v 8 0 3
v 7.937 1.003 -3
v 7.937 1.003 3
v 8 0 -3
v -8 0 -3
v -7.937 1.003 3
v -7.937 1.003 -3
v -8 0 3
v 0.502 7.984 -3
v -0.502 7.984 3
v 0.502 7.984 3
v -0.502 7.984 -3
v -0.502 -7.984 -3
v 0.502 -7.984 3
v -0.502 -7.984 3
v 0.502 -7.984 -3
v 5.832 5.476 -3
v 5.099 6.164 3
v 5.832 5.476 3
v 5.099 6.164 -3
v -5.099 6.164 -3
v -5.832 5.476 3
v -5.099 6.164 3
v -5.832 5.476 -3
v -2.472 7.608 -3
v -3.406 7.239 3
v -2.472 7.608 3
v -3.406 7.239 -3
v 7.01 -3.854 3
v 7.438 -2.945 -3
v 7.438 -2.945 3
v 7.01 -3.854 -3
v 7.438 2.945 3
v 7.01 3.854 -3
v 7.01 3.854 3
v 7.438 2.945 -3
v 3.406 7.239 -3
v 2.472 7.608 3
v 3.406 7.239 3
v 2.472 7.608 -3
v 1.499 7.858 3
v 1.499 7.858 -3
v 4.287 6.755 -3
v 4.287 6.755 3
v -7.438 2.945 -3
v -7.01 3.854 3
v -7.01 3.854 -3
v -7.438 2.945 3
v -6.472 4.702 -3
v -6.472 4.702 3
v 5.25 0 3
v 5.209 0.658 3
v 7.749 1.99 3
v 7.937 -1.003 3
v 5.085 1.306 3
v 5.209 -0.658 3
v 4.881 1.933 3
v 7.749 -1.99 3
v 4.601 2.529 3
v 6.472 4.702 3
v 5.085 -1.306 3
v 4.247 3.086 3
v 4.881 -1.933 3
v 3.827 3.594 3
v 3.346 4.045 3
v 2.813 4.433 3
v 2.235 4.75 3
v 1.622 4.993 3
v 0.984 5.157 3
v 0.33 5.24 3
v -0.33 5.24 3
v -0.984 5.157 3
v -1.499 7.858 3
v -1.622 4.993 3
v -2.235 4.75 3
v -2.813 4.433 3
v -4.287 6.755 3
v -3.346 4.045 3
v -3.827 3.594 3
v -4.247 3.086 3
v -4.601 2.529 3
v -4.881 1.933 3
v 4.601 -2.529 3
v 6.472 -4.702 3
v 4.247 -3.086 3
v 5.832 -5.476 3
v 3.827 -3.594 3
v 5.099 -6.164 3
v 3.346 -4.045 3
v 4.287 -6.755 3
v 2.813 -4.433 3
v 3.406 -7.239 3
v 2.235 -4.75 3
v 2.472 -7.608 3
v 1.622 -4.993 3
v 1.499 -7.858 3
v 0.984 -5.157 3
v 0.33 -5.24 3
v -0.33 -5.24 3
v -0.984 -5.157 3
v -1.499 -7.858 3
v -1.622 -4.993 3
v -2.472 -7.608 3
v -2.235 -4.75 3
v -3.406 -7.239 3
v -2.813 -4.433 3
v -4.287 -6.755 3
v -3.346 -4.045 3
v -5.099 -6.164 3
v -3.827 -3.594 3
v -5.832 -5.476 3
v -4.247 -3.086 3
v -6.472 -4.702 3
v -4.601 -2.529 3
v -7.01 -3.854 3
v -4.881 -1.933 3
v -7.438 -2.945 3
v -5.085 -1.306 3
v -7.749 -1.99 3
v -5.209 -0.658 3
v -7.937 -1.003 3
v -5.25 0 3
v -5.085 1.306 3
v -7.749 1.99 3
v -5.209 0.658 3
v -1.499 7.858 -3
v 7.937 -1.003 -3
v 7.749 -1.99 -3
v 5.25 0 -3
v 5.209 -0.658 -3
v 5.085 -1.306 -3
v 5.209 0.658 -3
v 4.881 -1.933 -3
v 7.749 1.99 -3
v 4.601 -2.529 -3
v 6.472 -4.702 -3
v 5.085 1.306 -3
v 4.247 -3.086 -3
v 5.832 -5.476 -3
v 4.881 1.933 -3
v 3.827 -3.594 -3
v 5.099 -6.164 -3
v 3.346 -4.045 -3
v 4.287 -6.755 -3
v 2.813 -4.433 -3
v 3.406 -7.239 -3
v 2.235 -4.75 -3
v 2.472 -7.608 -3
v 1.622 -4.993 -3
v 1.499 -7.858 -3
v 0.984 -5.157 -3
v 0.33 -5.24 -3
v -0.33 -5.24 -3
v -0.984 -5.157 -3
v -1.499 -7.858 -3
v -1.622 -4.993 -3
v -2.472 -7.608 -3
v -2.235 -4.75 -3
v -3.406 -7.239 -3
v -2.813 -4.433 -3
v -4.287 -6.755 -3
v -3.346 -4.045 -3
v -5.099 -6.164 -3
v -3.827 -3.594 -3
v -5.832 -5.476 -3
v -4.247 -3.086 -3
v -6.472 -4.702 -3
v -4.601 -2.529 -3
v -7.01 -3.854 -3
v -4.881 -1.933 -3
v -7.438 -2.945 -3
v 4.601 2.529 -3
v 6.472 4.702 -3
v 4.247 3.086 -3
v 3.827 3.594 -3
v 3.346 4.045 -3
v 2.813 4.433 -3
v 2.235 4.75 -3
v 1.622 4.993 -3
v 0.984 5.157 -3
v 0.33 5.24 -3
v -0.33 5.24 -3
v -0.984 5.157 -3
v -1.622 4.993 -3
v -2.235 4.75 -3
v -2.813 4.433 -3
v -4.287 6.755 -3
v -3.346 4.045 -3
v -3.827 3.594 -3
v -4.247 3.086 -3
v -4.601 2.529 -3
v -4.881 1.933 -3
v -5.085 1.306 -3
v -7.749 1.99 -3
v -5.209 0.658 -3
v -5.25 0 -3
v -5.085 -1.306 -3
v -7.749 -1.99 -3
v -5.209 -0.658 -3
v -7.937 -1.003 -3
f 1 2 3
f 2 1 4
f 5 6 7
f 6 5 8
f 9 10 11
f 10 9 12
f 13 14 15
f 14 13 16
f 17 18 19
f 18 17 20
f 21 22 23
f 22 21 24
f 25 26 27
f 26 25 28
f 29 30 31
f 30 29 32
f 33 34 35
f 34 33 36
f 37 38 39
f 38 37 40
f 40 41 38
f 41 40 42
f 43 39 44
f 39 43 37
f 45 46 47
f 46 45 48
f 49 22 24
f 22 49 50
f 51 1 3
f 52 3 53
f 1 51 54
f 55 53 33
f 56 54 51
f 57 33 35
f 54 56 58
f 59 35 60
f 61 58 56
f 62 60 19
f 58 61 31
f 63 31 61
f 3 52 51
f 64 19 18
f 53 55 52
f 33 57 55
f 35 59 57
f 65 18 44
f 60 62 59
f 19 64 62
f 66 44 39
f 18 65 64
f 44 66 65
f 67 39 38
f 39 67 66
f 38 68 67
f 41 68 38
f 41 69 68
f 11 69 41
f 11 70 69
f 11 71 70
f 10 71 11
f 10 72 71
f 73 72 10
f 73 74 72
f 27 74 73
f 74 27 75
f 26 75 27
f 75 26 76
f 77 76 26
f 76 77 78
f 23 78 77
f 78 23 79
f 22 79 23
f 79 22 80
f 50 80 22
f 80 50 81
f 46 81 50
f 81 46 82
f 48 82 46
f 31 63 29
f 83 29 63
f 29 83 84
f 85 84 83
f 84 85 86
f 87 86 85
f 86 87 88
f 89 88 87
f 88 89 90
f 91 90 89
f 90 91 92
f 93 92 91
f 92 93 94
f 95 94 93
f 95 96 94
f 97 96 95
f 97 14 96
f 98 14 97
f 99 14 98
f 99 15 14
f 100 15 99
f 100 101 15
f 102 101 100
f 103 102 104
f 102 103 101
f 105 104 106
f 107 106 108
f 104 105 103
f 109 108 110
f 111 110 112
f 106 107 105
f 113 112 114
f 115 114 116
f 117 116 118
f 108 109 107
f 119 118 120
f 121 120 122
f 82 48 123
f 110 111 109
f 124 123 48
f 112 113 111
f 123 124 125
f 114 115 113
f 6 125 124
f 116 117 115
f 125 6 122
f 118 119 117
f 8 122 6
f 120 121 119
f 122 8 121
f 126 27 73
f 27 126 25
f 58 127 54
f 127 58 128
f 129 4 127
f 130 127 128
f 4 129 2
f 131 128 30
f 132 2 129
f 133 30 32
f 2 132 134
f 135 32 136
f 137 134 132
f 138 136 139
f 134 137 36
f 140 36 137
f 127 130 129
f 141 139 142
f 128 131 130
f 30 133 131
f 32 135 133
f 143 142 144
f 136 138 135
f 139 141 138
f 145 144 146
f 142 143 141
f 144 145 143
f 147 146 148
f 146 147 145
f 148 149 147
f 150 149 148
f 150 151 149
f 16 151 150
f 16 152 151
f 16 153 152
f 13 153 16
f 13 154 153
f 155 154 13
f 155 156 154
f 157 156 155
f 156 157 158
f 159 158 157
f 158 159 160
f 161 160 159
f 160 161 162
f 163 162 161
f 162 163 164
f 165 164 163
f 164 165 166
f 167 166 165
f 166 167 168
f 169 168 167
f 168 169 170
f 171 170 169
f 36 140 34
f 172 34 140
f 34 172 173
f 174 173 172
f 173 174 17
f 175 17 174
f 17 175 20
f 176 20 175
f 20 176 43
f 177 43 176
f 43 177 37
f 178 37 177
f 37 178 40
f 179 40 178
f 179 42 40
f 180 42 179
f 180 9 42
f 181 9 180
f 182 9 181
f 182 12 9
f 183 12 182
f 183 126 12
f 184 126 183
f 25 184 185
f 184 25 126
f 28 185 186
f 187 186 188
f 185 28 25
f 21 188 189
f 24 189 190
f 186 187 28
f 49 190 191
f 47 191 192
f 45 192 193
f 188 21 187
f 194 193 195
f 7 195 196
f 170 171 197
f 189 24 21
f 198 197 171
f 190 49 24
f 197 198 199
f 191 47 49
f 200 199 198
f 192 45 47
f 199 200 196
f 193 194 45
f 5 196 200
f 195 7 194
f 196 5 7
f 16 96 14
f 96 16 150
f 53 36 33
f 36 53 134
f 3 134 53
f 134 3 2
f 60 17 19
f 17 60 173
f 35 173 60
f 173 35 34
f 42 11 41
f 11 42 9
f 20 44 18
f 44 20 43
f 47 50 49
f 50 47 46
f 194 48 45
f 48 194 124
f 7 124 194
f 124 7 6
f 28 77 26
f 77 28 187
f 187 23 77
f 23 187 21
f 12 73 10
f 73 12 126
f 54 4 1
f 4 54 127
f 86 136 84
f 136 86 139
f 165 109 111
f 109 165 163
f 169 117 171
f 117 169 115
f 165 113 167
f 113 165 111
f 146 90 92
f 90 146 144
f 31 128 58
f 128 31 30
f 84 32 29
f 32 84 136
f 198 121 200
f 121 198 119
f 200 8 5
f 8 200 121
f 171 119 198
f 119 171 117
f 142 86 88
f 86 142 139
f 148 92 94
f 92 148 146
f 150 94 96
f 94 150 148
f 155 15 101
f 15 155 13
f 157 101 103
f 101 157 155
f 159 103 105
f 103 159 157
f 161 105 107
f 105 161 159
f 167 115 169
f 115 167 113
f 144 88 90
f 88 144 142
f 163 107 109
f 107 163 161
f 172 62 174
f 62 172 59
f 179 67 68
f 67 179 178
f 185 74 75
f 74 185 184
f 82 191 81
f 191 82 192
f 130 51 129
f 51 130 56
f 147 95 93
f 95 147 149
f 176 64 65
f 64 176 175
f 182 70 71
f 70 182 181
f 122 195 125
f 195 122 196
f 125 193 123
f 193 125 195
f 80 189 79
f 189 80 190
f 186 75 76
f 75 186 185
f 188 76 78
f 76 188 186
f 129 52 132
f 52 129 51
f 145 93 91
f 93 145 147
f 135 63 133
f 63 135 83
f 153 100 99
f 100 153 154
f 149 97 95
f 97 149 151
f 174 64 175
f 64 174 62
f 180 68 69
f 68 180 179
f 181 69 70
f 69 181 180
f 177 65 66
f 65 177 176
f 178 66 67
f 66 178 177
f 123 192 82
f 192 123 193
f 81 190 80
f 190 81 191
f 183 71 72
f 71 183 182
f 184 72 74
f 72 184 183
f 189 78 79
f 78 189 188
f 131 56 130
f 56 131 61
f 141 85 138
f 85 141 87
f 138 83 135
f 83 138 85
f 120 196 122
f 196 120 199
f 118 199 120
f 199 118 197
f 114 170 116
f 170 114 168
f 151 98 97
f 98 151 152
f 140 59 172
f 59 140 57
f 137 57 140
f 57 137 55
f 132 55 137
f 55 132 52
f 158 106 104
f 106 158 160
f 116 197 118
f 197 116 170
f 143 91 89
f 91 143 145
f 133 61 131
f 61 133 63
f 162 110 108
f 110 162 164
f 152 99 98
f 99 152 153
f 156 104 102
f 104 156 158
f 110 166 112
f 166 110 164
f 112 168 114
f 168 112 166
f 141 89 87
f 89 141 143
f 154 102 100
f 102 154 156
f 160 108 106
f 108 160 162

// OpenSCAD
$fn = 50;


difference() {
	union() {
		translate(v = [0, 0, -3.0000000000]) {
			cylinder(h = 6, r = 8.0000000000);
		}
	}
	union() {
		translate(v = [0, 0, -100.0000000000]) {
			cylinder(h = 200, r = 5.2500000000);
		}
	}
}
